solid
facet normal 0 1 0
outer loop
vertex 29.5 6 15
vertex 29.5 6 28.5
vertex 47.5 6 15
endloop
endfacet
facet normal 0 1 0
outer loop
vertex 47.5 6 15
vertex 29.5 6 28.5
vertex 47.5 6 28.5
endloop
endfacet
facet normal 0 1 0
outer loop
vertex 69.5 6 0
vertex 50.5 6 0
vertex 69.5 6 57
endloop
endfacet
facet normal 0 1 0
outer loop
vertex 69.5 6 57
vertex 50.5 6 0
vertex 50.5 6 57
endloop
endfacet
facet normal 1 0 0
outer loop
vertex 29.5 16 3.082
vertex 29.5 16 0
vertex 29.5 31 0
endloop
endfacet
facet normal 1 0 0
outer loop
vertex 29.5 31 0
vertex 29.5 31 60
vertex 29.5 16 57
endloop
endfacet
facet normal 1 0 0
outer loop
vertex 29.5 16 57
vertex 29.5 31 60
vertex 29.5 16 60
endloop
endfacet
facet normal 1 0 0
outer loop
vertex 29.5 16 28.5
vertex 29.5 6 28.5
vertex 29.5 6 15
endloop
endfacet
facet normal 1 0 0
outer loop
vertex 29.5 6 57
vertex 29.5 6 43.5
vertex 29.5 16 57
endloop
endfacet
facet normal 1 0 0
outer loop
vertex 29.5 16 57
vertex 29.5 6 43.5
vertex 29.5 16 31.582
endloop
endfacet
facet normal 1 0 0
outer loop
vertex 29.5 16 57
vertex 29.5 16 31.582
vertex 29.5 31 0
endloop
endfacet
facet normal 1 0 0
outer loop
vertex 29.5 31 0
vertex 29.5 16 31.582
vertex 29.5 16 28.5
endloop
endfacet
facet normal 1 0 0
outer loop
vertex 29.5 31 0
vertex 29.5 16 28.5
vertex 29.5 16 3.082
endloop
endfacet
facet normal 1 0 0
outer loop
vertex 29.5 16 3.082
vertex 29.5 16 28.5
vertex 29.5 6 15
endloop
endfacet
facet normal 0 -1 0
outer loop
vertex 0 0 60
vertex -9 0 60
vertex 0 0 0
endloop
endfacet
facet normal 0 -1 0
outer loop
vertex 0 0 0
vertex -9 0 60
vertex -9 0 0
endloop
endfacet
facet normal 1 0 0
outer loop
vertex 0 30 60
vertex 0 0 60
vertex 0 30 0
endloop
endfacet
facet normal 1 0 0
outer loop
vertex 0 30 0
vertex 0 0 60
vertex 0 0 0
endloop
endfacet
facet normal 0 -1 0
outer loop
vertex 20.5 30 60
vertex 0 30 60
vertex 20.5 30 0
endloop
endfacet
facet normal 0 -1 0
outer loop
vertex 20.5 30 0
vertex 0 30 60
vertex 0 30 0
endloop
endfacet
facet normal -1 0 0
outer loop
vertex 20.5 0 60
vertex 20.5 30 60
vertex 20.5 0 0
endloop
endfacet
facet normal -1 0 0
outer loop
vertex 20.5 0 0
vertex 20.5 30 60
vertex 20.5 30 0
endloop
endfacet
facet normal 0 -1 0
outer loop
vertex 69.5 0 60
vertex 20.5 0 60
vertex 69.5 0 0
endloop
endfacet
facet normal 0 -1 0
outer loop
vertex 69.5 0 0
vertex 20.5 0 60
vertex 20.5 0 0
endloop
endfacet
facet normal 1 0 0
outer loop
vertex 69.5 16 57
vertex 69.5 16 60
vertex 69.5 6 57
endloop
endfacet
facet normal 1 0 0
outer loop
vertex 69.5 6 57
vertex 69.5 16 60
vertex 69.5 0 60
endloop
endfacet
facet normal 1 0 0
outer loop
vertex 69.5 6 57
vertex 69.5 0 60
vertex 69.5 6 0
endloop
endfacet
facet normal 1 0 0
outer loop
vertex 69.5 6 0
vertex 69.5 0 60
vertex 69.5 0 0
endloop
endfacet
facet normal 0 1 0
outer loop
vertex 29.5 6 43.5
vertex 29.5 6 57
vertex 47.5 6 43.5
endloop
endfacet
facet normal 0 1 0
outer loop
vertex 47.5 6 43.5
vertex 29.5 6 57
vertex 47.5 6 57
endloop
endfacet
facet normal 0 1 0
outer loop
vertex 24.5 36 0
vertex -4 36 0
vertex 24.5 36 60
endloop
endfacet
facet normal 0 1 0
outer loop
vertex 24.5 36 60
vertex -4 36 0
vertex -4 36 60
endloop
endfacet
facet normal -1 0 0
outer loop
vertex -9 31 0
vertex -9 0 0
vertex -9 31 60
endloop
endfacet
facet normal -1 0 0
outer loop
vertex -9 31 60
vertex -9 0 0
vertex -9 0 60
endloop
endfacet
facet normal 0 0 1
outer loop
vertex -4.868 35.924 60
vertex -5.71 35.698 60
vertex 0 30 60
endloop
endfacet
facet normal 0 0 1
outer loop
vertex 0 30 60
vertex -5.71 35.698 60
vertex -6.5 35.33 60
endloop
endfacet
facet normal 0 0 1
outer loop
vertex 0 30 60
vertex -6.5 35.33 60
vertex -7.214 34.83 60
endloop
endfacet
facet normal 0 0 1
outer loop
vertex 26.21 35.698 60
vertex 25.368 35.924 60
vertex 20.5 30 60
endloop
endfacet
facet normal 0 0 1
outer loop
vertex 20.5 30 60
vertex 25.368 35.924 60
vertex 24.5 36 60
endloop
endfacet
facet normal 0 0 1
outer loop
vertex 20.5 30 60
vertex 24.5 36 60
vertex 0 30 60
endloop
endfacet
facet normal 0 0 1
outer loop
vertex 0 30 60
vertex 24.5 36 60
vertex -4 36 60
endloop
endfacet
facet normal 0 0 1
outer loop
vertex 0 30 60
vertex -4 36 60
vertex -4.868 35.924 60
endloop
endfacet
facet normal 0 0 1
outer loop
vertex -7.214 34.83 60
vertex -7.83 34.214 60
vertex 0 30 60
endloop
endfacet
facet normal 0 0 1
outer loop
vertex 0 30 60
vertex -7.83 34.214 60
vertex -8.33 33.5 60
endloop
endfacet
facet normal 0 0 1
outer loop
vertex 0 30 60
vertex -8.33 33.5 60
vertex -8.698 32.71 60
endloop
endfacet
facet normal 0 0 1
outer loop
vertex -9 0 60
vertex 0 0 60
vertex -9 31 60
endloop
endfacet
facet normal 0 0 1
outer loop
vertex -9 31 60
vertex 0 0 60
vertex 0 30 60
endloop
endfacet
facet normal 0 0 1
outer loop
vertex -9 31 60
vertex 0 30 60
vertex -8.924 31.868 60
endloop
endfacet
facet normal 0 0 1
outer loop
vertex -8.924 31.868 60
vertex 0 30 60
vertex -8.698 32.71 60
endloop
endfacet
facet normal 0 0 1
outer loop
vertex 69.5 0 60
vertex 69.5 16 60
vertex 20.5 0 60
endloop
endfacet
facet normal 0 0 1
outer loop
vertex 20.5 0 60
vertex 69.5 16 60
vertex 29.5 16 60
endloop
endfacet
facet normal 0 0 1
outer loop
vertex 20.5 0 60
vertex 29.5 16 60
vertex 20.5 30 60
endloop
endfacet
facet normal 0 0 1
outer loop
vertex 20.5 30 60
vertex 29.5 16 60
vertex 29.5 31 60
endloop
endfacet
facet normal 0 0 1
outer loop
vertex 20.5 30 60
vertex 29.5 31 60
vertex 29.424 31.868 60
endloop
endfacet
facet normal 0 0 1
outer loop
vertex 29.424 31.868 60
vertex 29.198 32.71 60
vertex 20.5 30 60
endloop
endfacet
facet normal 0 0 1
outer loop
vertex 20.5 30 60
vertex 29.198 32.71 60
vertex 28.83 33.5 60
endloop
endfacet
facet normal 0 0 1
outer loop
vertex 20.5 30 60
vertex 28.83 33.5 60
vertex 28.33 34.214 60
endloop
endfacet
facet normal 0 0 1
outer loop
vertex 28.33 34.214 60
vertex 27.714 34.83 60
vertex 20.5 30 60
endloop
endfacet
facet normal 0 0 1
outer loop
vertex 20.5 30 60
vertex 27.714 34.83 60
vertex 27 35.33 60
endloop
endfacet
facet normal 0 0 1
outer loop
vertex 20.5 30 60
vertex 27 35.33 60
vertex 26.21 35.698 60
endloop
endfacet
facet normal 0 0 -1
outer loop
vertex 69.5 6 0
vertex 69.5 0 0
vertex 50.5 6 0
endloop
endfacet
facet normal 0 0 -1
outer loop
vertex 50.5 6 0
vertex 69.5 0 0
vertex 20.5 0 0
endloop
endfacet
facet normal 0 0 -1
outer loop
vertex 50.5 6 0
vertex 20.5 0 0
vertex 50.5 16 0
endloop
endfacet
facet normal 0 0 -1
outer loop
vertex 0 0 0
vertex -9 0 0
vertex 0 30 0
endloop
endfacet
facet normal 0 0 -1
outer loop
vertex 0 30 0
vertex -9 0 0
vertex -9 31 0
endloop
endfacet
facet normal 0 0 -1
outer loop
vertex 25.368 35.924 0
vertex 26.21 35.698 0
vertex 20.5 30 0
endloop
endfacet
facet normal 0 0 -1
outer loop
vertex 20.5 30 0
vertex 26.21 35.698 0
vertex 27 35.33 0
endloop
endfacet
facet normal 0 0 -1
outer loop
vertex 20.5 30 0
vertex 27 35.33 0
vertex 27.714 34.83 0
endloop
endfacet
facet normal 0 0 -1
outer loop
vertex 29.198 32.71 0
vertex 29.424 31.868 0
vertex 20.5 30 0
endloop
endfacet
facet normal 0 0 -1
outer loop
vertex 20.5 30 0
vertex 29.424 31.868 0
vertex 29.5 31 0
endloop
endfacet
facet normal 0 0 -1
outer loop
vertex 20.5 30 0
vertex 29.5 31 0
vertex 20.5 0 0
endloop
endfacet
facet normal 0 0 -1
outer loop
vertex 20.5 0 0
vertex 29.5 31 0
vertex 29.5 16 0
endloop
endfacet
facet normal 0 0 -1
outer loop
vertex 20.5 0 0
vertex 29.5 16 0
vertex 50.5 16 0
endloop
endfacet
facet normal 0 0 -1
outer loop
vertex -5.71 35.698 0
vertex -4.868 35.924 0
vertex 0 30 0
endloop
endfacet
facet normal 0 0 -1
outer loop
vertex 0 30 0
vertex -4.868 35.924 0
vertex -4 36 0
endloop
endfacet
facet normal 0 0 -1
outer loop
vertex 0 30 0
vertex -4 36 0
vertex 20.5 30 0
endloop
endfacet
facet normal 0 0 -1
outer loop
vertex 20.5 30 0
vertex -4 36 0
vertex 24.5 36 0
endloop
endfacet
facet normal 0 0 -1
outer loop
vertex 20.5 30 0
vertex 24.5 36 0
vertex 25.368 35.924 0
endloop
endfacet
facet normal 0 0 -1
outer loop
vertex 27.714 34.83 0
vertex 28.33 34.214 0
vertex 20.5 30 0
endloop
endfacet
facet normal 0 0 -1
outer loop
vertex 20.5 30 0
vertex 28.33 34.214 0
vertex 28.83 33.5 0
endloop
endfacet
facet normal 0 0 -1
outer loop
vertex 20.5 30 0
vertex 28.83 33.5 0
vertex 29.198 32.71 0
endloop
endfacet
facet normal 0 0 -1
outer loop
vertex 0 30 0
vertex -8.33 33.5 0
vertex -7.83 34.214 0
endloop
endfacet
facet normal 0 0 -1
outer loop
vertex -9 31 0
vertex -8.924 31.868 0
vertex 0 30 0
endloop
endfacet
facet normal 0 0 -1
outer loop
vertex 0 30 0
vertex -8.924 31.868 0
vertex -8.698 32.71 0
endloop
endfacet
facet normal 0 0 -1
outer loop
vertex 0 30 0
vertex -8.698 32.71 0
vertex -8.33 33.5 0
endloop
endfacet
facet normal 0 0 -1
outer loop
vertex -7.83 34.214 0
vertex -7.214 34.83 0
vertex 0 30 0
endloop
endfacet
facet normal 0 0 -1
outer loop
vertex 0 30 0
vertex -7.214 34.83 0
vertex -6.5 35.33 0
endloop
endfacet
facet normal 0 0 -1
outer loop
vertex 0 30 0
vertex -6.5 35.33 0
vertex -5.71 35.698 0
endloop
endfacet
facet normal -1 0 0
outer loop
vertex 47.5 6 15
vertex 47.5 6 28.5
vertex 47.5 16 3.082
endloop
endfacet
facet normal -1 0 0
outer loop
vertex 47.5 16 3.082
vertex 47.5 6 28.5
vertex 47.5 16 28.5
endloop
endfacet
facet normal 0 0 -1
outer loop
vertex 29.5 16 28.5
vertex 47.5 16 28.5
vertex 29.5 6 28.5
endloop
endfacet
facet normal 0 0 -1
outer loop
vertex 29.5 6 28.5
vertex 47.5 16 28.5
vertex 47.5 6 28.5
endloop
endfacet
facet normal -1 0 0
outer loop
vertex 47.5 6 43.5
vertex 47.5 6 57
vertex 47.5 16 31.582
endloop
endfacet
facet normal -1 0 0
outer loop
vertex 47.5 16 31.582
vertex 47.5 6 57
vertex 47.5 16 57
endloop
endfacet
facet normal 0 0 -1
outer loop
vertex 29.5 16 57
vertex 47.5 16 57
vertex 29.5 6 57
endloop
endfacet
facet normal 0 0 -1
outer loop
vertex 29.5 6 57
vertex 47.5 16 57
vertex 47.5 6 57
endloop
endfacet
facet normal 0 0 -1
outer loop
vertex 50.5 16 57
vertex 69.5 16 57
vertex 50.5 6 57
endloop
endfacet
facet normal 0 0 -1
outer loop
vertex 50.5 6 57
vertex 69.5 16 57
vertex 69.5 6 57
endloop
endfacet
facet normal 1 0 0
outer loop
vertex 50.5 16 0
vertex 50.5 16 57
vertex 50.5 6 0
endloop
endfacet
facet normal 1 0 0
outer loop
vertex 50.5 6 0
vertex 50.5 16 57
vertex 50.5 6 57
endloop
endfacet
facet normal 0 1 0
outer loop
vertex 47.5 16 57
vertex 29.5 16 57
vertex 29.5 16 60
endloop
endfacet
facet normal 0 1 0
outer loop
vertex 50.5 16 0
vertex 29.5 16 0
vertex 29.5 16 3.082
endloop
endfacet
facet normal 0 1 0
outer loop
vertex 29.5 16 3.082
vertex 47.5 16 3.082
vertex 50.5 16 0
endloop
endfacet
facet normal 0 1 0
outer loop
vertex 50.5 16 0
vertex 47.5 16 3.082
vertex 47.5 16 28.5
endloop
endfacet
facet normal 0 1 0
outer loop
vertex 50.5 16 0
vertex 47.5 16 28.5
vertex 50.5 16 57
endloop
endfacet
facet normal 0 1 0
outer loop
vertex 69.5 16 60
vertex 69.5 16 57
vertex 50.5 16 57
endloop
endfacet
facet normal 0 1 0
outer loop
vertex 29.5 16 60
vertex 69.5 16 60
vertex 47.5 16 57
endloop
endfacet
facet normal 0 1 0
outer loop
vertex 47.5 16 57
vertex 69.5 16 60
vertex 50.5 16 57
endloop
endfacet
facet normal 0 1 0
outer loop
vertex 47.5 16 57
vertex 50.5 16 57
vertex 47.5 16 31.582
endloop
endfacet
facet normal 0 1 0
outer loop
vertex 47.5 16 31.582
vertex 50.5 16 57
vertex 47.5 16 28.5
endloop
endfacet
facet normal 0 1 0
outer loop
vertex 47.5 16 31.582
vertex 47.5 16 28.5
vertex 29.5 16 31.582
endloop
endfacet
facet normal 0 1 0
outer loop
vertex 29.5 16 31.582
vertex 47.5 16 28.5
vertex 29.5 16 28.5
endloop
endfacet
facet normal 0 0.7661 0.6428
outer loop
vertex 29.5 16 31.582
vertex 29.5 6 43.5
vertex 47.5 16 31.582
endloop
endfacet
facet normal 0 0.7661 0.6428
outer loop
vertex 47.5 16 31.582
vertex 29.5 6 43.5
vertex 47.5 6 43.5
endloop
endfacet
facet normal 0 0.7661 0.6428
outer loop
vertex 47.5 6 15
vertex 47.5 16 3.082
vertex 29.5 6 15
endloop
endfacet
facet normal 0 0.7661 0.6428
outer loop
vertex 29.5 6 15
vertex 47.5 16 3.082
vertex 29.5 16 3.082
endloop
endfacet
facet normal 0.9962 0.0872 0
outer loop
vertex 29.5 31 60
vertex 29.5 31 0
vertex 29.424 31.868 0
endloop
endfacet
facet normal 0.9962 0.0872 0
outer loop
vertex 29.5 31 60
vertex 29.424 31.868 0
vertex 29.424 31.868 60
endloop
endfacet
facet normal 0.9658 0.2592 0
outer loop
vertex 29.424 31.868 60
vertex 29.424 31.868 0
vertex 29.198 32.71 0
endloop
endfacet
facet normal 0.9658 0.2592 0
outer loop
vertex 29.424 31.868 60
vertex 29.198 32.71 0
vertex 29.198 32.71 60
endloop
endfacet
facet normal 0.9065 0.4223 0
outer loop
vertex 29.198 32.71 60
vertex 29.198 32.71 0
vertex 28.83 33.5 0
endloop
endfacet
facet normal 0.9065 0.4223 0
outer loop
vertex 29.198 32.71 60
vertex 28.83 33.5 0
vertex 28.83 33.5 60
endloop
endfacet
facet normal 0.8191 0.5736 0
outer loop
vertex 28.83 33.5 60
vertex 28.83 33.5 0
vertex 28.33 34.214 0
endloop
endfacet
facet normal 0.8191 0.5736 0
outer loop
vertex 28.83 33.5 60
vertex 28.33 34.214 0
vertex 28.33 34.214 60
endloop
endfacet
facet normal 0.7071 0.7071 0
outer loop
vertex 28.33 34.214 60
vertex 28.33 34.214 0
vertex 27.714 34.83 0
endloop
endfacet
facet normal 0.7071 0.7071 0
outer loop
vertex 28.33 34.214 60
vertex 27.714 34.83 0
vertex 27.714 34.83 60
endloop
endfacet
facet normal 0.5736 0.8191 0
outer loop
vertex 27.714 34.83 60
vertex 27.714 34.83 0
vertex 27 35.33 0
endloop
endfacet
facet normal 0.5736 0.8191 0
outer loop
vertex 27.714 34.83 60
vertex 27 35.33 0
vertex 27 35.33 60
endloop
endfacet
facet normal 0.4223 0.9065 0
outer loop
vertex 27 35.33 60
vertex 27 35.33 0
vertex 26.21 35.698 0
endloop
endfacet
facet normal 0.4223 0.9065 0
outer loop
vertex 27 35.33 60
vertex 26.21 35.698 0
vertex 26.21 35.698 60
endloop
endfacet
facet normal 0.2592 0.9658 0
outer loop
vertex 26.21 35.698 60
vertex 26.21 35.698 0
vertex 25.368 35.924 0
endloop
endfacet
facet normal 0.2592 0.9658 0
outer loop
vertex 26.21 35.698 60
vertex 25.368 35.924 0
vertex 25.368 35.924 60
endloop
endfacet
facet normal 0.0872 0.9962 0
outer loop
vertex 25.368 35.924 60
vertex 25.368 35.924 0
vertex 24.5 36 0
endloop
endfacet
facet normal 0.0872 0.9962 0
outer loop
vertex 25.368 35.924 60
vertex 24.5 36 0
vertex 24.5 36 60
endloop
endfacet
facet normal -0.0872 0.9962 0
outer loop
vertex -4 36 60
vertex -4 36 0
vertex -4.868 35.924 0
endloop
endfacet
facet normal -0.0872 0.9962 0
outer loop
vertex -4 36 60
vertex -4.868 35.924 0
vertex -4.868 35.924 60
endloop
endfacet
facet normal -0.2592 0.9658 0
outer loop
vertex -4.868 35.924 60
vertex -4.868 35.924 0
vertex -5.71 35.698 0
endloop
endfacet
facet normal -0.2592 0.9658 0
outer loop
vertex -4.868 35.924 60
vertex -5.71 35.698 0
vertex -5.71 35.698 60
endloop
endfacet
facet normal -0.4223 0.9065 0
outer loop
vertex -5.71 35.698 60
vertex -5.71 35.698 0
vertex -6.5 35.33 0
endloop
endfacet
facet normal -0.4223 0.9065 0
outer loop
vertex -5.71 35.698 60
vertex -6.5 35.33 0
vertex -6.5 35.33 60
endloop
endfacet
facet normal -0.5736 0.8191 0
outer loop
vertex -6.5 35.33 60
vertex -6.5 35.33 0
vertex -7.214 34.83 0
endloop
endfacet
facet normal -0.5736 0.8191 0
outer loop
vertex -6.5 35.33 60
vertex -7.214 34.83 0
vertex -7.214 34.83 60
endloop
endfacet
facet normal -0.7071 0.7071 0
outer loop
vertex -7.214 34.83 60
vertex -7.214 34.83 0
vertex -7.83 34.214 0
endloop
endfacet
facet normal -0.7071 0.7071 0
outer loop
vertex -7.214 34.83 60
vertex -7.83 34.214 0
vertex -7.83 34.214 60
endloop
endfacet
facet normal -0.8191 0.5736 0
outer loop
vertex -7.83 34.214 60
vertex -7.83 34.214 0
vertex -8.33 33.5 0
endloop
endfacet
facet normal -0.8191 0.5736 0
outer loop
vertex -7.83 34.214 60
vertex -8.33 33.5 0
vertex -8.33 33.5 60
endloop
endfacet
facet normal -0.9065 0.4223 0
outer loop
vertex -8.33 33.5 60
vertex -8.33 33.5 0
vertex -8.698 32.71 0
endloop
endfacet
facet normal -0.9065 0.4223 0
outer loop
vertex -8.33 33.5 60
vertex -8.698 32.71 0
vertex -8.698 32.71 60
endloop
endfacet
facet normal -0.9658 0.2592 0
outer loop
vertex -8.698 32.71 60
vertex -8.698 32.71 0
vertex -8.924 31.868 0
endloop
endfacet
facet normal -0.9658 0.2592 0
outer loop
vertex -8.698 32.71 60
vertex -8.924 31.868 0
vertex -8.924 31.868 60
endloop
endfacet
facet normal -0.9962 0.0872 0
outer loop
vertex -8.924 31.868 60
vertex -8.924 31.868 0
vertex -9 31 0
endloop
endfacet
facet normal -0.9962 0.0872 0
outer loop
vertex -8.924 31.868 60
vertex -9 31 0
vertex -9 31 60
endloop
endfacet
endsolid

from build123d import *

# Parameters (mm, degrees)
BOSS_EXTRUDE1_DEPTH = 60
SKETCH2_W           = 18
SKETCH2_H           = 3
BOSS_EXTRUDE2_DEPTH = 10
CHAMFER1_SIZE       = 10.069195574
CHAMFER1_SIZE_2     = 12
FILLET1_R           = 5


with BuildPart() as part:
    # Sketch1 → Boss-Extrude1 (new body)
    with BuildSketch(Plane.XY):
        Polygon((0, 0), (0, 30), (20.5, 30), (20.5, 0), (69.5, 0), (69.5, 6), (29.5, 6), (29.5, 36), (-9, 36), (-9, 0), align=None)
    extrude(amount=BOSS_EXTRUDE1_DEPTH)

    # Sketch2 → Boss-Extrude2 (add)
    with BuildSketch(Plane(origin=(0, 6, 0), x_dir=(1, 0, 0), z_dir=(0, 1, 0))):
        with Locations((38.5, -1.5)):
            Rectangle(SKETCH2_W, SKETCH2_H)
        Polygon((50.5, 0), (47.5, 0), (47.5, -3), (47.5, -28.5), (47.5, -31.5), (47.5, -57), (47.5, -60), (69.5, -60), (69.5, -57), (50.5, -57), align=None)
        with Locations((38.5, -30)):
            Rectangle(SKETCH2_W, SKETCH2_H)
        with Locations((38.5, -58.5)):
            Rectangle(SKETCH2_W, SKETCH2_H)
    extrude(amount=BOSS_EXTRUDE2_DEPTH)

    # Chamfer1
    # the kernel refuses this chamfer: 12, 10.069195574 mm, written as the material it adds along each edge
    with BuildSketch(Plane(origin=(29.5, 6, 31.5), x_dir=(0, 0.9993728857116145, -0.03540953691366269), z_dir=(1, 0, 0))) as chamfer1_piece_1_section:
        Polygon((CHAMFER1_SIZE * 0.999372885724, CHAMFER1_SIZE * 0.0354095369141), (-CHAMFER1_SIZE_2 * 0.0354095369137, CHAMFER1_SIZE_2 * 0.999372885712), (0, 0), align=None)
    chamfer1_piece_1 = extrude(amount=18, mode=Mode.PRIVATE)
    chamfer1_piece_1 = split(chamfer1_piece_1, bisect_by=Plane(origin=(38.5, 16, 35.487012509), z_dir=(0, -1, 0)), keep=Keep.TOP, mode=Mode.PRIVATE)
    add(chamfer1_piece_1)
    with BuildSketch(Plane(origin=(29.5, 6, 3), x_dir=(0, -0.024939322090234344, 0.9996889667359941), z_dir=(1, 0, 0))) as chamfer1_piece_2_section:
        Polygon((CHAMFER1_SIZE_2 * 0.999688966736, -CHAMFER1_SIZE_2 * 0.0249393220902), (-CHAMFER1_SIZE * 0.0249393220905, -CHAMFER1_SIZE * 0.999688966749), (0, 0), align=None)
    chamfer1_piece_2 = extrude(amount=18, mode=Mode.PRIVATE)
    chamfer1_piece_2 = split(chamfer1_piece_2, bisect_by=Plane(origin=(38.5, 16, 6.987012509), z_dir=(0, -1, 0)), keep=Keep.TOP, mode=Mode.PRIVATE)
    add(chamfer1_piece_2)

    # Fillet1
    fillet1_edges = [part.edges().sort_by_distance(p)[0] for p in [
        (-9, 36, 30),
        (29.5, 36, 30),
    ]]
    fillet(fillet1_edges, radius=FILLET1_R)


solid = part.part
